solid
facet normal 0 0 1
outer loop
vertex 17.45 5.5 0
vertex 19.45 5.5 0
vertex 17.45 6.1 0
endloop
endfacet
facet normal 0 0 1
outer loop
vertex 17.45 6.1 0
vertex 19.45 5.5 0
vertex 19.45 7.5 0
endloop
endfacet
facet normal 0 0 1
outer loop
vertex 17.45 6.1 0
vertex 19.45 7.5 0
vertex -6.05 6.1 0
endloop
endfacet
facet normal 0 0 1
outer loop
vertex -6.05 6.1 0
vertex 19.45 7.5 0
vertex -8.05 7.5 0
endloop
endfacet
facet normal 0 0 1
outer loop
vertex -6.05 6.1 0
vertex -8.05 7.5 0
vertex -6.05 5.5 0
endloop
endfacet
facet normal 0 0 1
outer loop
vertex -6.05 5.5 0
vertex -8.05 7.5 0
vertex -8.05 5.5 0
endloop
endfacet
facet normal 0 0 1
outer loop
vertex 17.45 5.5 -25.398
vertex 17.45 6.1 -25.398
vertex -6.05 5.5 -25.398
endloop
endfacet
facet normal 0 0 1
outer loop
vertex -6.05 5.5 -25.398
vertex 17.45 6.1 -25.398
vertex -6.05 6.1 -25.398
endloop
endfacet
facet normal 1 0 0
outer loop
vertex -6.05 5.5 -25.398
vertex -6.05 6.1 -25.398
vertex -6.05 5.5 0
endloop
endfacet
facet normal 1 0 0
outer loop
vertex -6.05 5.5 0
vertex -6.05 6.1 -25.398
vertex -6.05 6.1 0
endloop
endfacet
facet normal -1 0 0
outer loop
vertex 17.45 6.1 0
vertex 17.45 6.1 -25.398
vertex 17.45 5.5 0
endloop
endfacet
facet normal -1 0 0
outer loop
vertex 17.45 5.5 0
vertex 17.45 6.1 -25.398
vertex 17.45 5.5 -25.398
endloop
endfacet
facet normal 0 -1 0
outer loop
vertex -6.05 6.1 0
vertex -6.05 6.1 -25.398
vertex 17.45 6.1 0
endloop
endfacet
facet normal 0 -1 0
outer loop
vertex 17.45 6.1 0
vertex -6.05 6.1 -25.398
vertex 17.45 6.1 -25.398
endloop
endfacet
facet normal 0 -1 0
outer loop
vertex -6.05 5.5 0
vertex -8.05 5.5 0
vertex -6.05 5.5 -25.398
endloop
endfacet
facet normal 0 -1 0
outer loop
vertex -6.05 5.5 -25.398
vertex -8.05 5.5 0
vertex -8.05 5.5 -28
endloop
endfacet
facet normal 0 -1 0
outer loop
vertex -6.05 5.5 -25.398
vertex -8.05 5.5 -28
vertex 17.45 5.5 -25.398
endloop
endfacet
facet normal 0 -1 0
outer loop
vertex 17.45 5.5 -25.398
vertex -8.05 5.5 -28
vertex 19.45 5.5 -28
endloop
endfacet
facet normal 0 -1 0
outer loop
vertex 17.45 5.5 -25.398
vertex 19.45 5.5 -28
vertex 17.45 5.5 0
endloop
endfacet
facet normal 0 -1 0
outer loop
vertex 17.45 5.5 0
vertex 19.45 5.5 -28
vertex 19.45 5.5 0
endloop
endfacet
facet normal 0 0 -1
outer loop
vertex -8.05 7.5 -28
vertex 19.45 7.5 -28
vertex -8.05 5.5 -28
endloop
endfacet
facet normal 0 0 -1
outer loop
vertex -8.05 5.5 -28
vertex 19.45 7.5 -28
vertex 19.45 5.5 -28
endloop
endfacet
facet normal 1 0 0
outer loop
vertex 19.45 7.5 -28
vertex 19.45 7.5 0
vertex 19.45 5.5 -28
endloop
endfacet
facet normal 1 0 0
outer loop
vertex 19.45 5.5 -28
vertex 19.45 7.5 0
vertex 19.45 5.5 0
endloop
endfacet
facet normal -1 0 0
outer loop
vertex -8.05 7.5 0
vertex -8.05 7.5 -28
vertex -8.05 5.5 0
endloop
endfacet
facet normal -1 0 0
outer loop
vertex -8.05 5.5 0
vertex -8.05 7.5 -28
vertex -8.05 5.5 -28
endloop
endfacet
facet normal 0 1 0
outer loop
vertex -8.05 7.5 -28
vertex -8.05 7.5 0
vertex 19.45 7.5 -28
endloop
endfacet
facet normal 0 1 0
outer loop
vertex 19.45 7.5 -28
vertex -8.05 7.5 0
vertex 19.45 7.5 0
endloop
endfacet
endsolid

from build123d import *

# Parameters (mm, degrees)
SKETCH1_R                                      = 29.692527183
SKETCH1_R_2                                    = 22.692527183
SKETCH1_R_3                                    = 19.692527183
SKETCH1_R_4                                    = 16.692527183
BOSS_EXTRUDE1_DEPTH                            = 5
SKETCH9_W                                      = 27.5
SKETCH9_H                                      = 28
BOSS_EXTRUDE2_DEPTH                            = 7.5
SKETCH10_W                                     = 23.5
SKETCH10_H                                     = 25.45
CUT_EXTRUDE1_DEPTH                             = 6.1
SKETCH12_W                                     = 12
SKETCH12_H                                     = 11
CUT_EXTRUDE2_DEPTH                             = 3
SKETCH11_W                                     = 13
SKETCH11_H                                     = 9.717675131
CUT_EXTRUDE3_DEPTH                             = 4.947760199
CSK_FOR_M3_FLAT_HEAD_MACHINE_SCREW1_AT_2_COUNT = 2
CSK_FOR_M3_FLAT_HEAD_MACHINE_SCREW1_AT_2_PITCH = 27.84943902
CSK_FOR_M3_FLAT_HEAD_MACHINE_SCREW1_AT_3_COUNT = 2
CSK_FOR_M3_FLAT_HEAD_MACHINE_SCREW1_AT_3_PITCH = 27.84943902
CSK_FOR_M3_FLAT_HEAD_MACHINE_SCREW1_AT_4_COUNT = 2
CSK_FOR_M3_FLAT_HEAD_MACHINE_SCREW1_AT_4_PITCH = 39.385054366
SPLIT1_START                                   = -28
SPLIT1_DEPTH                                   = 28
SPLIT1_2_OUTLINE_W                             = 23.5
SPLIT1_2_OUTLINE_H                             = 0.6
SPLIT1_2_DEPTH                                 = 2.602239801
SPLIT1_START_2                                 = 5.5
SPLIT1_3_OUTLINE_W                             = 27.5
SPLIT1_3_OUTLINE_H                             = 28
SPLIT1_3_DEPTH                                 = 2


# Read off the part's stored shape, not the designer's step: Split1
with BuildPart() as part:
    # Sketch1 → Boss-Extrude1 (new body)
    # profile 1 of 4: a face of its own
    with BuildSketch(Plane(origin=(0, 0, 0), x_dir=(-1, 0, 0), z_dir=(0, 0, 1))):
        with Locations(Location((0, 0, 0), (0, 0, 180))):
            Circle(SKETCH1_R)
        Circle(SKETCH1_R_2, mode=Mode.SUBTRACT)
    # profile 2 of 4: a face of its own
    with BuildSketch(Plane(origin=(0, 0, 0), x_dir=(-1, 0, 0), z_dir=(0, 0, 1))):
        Circle(SKETCH1_R_2)
        Circle(SKETCH1_R_3, mode=Mode.SUBTRACT)
    # profile 3 of 4: a face of its own
    with BuildSketch(Plane(origin=(0, 0, 0), x_dir=(-1, 0, 0), z_dir=(0, 0, 1))):
        Circle(SKETCH1_R_3)
        Circle(SKETCH1_R_4, mode=Mode.SUBTRACT)
    # profile 4 of 4: a face of its own
    with BuildSketch(Plane(origin=(0, 0, 0), x_dir=(-1, 0, 0), z_dir=(0, 0, 1))):
        with BuildLine():
            Line((14.058465911, 9), (-14.058465911, 9))
            ThreePointArc((-14.058465911, 9), (-16.692527183, 0), (-14.058465911, -9))
            Line((-14.058465911, -9), (14.058465911, -9))
            ThreePointArc((14.058465911, -9), (16.020483578, -4.688770595), (16.692527183, 0))
            ThreePointArc((16.692527183, 0), (16.020483578, 4.688770595), (14.058465911, 9))
        make_face()
    extrude(amount=BOSS_EXTRUDE1_DEPTH)

    # Sketch9 → Boss-Extrude2 (add, symmetric)
    with BuildSketch(Plane(origin=(0, 0, 0), x_dir=(1, 0, 0), z_dir=(0, 1, 0))):
        with Locations((5.7, 14)):
            Rectangle(SKETCH9_W, SKETCH9_H)
    extrude(amount=BOSS_EXTRUDE2_DEPTH, both=True)

    # Sketch10 → Cut-Extrude1 (cut, symmetric)
    with BuildSketch(Plane(origin=(0, 0, 0), x_dir=(1, 0, 0), z_dir=(0, 1, 0))):
        with Locations((5.7, 12.672760199)):
            Rectangle(SKETCH10_W, SKETCH10_H)
    extrude(amount=CUT_EXTRUDE1_DEPTH, both=True, mode=Mode.SUBTRACT)

    # Sketch12 → Cut-Extrude2 (cut)
    with BuildSketch(Plane.XY.offset(-28)):
        with Locations((1.95, 0)):
            Rectangle(SKETCH12_W, SKETCH12_H)
    extrude(amount=CUT_EXTRUDE2_DEPTH, mode=Mode.SUBTRACT)

    # Sketch11 → Cut-Extrude3 (cut)
    with BuildSketch(Plane.XY.offset(5)):
        with Locations((-1.55, -0.433824782)):
            Rectangle(SKETCH11_W, SKETCH11_H)
    extrude(amount=-CUT_EXTRUDE3_DEPTH, mode=Mode.SUBTRACT)

    # Sketch13 → CSK for M3 Flat Head Machine Screw1 (revolve, cut)
    with BuildSketch(Plane.YZ.offset(-19.692527183)):
        Polygon((0, 0), (0, 13.021463052), (1.7, 12), (1.7, 1.95), (3.65, 0), align=None)
    csk_for_m3_flat_head_machine_screw1 = revolve(axis=Axis((-19.692527183, 0, -6.35), (0, 0, 1)), mode=Mode.SUBTRACT)

    # CSK for M3 Flat Head Machine Screw1 at 2: CSK for M3 Flat Head Machine Screw1 ×2
    with Locations(*[Vector(0.7071067811865476, -0.7071067811865475, 0) * (i * CSK_FOR_M3_FLAT_HEAD_MACHINE_SCREW1_AT_2_PITCH) for i in range(1, CSK_FOR_M3_FLAT_HEAD_MACHINE_SCREW1_AT_2_COUNT)]):
        add(csk_for_m3_flat_head_machine_screw1, mode=Mode.SUBTRACT)

    # CSK for M3 Flat Head Machine Screw1 at 3: CSK for M3 Flat Head Machine Screw1 ×2
    with Locations(*[Vector(0.7071067811865476, 0.7071067811865475, 0) * (i * CSK_FOR_M3_FLAT_HEAD_MACHINE_SCREW1_AT_3_PITCH) for i in range(1, CSK_FOR_M3_FLAT_HEAD_MACHINE_SCREW1_AT_3_COUNT)]):
        add(csk_for_m3_flat_head_machine_screw1, mode=Mode.SUBTRACT)

    # CSK for M3 Flat Head Machine Screw1 at 4: CSK for M3 Flat Head Machine Screw1 ×2
    with Locations(*[(i * CSK_FOR_M3_FLAT_HEAD_MACHINE_SCREW1_AT_4_PITCH, 0, 0) for i in range(1, CSK_FOR_M3_FLAT_HEAD_MACHINE_SCREW1_AT_4_COUNT)]):
        add(csk_for_m3_flat_head_machine_screw1, mode=Mode.SUBTRACT)

    # Split1 3 outline → Split1 3 (cut)
    with BuildSketch(Plane(origin=(0, 0, 0), x_dir=(1, 0, 0), z_dir=(0, 1, 0)).offset(SPLIT1_START_2)):
        with Locations((5.7, 14)):
            Rectangle(SPLIT1_3_OUTLINE_W, SPLIT1_3_OUTLINE_H)
    extrude(amount=SPLIT1_3_DEPTH, mode=Mode.SUBTRACT)


with BuildPart() as body_2:
    # Split1 outline → Split1 (new body)
    with BuildSketch(Plane.XY.offset(SPLIT1_START)):
        Polygon((-8.05, 5.5), (-6.05, 5.5), (-6.05, 6.1), (17.45, 6.1), (17.45, 5.5), (19.45, 5.5), (19.45, 7.5), (-8.05, 7.5), align=None)
    extrude(amount=SPLIT1_DEPTH)

    # Split1 2 outline → Split1 2 (add)
    with BuildSketch(Plane.XY.offset(SPLIT1_START)):
        with Locations((5.7, 5.8)):
            Rectangle(SPLIT1_2_OUTLINE_W, SPLIT1_2_OUTLINE_H)
    extrude(amount=SPLIT1_2_DEPTH)


solid = body_2.part
